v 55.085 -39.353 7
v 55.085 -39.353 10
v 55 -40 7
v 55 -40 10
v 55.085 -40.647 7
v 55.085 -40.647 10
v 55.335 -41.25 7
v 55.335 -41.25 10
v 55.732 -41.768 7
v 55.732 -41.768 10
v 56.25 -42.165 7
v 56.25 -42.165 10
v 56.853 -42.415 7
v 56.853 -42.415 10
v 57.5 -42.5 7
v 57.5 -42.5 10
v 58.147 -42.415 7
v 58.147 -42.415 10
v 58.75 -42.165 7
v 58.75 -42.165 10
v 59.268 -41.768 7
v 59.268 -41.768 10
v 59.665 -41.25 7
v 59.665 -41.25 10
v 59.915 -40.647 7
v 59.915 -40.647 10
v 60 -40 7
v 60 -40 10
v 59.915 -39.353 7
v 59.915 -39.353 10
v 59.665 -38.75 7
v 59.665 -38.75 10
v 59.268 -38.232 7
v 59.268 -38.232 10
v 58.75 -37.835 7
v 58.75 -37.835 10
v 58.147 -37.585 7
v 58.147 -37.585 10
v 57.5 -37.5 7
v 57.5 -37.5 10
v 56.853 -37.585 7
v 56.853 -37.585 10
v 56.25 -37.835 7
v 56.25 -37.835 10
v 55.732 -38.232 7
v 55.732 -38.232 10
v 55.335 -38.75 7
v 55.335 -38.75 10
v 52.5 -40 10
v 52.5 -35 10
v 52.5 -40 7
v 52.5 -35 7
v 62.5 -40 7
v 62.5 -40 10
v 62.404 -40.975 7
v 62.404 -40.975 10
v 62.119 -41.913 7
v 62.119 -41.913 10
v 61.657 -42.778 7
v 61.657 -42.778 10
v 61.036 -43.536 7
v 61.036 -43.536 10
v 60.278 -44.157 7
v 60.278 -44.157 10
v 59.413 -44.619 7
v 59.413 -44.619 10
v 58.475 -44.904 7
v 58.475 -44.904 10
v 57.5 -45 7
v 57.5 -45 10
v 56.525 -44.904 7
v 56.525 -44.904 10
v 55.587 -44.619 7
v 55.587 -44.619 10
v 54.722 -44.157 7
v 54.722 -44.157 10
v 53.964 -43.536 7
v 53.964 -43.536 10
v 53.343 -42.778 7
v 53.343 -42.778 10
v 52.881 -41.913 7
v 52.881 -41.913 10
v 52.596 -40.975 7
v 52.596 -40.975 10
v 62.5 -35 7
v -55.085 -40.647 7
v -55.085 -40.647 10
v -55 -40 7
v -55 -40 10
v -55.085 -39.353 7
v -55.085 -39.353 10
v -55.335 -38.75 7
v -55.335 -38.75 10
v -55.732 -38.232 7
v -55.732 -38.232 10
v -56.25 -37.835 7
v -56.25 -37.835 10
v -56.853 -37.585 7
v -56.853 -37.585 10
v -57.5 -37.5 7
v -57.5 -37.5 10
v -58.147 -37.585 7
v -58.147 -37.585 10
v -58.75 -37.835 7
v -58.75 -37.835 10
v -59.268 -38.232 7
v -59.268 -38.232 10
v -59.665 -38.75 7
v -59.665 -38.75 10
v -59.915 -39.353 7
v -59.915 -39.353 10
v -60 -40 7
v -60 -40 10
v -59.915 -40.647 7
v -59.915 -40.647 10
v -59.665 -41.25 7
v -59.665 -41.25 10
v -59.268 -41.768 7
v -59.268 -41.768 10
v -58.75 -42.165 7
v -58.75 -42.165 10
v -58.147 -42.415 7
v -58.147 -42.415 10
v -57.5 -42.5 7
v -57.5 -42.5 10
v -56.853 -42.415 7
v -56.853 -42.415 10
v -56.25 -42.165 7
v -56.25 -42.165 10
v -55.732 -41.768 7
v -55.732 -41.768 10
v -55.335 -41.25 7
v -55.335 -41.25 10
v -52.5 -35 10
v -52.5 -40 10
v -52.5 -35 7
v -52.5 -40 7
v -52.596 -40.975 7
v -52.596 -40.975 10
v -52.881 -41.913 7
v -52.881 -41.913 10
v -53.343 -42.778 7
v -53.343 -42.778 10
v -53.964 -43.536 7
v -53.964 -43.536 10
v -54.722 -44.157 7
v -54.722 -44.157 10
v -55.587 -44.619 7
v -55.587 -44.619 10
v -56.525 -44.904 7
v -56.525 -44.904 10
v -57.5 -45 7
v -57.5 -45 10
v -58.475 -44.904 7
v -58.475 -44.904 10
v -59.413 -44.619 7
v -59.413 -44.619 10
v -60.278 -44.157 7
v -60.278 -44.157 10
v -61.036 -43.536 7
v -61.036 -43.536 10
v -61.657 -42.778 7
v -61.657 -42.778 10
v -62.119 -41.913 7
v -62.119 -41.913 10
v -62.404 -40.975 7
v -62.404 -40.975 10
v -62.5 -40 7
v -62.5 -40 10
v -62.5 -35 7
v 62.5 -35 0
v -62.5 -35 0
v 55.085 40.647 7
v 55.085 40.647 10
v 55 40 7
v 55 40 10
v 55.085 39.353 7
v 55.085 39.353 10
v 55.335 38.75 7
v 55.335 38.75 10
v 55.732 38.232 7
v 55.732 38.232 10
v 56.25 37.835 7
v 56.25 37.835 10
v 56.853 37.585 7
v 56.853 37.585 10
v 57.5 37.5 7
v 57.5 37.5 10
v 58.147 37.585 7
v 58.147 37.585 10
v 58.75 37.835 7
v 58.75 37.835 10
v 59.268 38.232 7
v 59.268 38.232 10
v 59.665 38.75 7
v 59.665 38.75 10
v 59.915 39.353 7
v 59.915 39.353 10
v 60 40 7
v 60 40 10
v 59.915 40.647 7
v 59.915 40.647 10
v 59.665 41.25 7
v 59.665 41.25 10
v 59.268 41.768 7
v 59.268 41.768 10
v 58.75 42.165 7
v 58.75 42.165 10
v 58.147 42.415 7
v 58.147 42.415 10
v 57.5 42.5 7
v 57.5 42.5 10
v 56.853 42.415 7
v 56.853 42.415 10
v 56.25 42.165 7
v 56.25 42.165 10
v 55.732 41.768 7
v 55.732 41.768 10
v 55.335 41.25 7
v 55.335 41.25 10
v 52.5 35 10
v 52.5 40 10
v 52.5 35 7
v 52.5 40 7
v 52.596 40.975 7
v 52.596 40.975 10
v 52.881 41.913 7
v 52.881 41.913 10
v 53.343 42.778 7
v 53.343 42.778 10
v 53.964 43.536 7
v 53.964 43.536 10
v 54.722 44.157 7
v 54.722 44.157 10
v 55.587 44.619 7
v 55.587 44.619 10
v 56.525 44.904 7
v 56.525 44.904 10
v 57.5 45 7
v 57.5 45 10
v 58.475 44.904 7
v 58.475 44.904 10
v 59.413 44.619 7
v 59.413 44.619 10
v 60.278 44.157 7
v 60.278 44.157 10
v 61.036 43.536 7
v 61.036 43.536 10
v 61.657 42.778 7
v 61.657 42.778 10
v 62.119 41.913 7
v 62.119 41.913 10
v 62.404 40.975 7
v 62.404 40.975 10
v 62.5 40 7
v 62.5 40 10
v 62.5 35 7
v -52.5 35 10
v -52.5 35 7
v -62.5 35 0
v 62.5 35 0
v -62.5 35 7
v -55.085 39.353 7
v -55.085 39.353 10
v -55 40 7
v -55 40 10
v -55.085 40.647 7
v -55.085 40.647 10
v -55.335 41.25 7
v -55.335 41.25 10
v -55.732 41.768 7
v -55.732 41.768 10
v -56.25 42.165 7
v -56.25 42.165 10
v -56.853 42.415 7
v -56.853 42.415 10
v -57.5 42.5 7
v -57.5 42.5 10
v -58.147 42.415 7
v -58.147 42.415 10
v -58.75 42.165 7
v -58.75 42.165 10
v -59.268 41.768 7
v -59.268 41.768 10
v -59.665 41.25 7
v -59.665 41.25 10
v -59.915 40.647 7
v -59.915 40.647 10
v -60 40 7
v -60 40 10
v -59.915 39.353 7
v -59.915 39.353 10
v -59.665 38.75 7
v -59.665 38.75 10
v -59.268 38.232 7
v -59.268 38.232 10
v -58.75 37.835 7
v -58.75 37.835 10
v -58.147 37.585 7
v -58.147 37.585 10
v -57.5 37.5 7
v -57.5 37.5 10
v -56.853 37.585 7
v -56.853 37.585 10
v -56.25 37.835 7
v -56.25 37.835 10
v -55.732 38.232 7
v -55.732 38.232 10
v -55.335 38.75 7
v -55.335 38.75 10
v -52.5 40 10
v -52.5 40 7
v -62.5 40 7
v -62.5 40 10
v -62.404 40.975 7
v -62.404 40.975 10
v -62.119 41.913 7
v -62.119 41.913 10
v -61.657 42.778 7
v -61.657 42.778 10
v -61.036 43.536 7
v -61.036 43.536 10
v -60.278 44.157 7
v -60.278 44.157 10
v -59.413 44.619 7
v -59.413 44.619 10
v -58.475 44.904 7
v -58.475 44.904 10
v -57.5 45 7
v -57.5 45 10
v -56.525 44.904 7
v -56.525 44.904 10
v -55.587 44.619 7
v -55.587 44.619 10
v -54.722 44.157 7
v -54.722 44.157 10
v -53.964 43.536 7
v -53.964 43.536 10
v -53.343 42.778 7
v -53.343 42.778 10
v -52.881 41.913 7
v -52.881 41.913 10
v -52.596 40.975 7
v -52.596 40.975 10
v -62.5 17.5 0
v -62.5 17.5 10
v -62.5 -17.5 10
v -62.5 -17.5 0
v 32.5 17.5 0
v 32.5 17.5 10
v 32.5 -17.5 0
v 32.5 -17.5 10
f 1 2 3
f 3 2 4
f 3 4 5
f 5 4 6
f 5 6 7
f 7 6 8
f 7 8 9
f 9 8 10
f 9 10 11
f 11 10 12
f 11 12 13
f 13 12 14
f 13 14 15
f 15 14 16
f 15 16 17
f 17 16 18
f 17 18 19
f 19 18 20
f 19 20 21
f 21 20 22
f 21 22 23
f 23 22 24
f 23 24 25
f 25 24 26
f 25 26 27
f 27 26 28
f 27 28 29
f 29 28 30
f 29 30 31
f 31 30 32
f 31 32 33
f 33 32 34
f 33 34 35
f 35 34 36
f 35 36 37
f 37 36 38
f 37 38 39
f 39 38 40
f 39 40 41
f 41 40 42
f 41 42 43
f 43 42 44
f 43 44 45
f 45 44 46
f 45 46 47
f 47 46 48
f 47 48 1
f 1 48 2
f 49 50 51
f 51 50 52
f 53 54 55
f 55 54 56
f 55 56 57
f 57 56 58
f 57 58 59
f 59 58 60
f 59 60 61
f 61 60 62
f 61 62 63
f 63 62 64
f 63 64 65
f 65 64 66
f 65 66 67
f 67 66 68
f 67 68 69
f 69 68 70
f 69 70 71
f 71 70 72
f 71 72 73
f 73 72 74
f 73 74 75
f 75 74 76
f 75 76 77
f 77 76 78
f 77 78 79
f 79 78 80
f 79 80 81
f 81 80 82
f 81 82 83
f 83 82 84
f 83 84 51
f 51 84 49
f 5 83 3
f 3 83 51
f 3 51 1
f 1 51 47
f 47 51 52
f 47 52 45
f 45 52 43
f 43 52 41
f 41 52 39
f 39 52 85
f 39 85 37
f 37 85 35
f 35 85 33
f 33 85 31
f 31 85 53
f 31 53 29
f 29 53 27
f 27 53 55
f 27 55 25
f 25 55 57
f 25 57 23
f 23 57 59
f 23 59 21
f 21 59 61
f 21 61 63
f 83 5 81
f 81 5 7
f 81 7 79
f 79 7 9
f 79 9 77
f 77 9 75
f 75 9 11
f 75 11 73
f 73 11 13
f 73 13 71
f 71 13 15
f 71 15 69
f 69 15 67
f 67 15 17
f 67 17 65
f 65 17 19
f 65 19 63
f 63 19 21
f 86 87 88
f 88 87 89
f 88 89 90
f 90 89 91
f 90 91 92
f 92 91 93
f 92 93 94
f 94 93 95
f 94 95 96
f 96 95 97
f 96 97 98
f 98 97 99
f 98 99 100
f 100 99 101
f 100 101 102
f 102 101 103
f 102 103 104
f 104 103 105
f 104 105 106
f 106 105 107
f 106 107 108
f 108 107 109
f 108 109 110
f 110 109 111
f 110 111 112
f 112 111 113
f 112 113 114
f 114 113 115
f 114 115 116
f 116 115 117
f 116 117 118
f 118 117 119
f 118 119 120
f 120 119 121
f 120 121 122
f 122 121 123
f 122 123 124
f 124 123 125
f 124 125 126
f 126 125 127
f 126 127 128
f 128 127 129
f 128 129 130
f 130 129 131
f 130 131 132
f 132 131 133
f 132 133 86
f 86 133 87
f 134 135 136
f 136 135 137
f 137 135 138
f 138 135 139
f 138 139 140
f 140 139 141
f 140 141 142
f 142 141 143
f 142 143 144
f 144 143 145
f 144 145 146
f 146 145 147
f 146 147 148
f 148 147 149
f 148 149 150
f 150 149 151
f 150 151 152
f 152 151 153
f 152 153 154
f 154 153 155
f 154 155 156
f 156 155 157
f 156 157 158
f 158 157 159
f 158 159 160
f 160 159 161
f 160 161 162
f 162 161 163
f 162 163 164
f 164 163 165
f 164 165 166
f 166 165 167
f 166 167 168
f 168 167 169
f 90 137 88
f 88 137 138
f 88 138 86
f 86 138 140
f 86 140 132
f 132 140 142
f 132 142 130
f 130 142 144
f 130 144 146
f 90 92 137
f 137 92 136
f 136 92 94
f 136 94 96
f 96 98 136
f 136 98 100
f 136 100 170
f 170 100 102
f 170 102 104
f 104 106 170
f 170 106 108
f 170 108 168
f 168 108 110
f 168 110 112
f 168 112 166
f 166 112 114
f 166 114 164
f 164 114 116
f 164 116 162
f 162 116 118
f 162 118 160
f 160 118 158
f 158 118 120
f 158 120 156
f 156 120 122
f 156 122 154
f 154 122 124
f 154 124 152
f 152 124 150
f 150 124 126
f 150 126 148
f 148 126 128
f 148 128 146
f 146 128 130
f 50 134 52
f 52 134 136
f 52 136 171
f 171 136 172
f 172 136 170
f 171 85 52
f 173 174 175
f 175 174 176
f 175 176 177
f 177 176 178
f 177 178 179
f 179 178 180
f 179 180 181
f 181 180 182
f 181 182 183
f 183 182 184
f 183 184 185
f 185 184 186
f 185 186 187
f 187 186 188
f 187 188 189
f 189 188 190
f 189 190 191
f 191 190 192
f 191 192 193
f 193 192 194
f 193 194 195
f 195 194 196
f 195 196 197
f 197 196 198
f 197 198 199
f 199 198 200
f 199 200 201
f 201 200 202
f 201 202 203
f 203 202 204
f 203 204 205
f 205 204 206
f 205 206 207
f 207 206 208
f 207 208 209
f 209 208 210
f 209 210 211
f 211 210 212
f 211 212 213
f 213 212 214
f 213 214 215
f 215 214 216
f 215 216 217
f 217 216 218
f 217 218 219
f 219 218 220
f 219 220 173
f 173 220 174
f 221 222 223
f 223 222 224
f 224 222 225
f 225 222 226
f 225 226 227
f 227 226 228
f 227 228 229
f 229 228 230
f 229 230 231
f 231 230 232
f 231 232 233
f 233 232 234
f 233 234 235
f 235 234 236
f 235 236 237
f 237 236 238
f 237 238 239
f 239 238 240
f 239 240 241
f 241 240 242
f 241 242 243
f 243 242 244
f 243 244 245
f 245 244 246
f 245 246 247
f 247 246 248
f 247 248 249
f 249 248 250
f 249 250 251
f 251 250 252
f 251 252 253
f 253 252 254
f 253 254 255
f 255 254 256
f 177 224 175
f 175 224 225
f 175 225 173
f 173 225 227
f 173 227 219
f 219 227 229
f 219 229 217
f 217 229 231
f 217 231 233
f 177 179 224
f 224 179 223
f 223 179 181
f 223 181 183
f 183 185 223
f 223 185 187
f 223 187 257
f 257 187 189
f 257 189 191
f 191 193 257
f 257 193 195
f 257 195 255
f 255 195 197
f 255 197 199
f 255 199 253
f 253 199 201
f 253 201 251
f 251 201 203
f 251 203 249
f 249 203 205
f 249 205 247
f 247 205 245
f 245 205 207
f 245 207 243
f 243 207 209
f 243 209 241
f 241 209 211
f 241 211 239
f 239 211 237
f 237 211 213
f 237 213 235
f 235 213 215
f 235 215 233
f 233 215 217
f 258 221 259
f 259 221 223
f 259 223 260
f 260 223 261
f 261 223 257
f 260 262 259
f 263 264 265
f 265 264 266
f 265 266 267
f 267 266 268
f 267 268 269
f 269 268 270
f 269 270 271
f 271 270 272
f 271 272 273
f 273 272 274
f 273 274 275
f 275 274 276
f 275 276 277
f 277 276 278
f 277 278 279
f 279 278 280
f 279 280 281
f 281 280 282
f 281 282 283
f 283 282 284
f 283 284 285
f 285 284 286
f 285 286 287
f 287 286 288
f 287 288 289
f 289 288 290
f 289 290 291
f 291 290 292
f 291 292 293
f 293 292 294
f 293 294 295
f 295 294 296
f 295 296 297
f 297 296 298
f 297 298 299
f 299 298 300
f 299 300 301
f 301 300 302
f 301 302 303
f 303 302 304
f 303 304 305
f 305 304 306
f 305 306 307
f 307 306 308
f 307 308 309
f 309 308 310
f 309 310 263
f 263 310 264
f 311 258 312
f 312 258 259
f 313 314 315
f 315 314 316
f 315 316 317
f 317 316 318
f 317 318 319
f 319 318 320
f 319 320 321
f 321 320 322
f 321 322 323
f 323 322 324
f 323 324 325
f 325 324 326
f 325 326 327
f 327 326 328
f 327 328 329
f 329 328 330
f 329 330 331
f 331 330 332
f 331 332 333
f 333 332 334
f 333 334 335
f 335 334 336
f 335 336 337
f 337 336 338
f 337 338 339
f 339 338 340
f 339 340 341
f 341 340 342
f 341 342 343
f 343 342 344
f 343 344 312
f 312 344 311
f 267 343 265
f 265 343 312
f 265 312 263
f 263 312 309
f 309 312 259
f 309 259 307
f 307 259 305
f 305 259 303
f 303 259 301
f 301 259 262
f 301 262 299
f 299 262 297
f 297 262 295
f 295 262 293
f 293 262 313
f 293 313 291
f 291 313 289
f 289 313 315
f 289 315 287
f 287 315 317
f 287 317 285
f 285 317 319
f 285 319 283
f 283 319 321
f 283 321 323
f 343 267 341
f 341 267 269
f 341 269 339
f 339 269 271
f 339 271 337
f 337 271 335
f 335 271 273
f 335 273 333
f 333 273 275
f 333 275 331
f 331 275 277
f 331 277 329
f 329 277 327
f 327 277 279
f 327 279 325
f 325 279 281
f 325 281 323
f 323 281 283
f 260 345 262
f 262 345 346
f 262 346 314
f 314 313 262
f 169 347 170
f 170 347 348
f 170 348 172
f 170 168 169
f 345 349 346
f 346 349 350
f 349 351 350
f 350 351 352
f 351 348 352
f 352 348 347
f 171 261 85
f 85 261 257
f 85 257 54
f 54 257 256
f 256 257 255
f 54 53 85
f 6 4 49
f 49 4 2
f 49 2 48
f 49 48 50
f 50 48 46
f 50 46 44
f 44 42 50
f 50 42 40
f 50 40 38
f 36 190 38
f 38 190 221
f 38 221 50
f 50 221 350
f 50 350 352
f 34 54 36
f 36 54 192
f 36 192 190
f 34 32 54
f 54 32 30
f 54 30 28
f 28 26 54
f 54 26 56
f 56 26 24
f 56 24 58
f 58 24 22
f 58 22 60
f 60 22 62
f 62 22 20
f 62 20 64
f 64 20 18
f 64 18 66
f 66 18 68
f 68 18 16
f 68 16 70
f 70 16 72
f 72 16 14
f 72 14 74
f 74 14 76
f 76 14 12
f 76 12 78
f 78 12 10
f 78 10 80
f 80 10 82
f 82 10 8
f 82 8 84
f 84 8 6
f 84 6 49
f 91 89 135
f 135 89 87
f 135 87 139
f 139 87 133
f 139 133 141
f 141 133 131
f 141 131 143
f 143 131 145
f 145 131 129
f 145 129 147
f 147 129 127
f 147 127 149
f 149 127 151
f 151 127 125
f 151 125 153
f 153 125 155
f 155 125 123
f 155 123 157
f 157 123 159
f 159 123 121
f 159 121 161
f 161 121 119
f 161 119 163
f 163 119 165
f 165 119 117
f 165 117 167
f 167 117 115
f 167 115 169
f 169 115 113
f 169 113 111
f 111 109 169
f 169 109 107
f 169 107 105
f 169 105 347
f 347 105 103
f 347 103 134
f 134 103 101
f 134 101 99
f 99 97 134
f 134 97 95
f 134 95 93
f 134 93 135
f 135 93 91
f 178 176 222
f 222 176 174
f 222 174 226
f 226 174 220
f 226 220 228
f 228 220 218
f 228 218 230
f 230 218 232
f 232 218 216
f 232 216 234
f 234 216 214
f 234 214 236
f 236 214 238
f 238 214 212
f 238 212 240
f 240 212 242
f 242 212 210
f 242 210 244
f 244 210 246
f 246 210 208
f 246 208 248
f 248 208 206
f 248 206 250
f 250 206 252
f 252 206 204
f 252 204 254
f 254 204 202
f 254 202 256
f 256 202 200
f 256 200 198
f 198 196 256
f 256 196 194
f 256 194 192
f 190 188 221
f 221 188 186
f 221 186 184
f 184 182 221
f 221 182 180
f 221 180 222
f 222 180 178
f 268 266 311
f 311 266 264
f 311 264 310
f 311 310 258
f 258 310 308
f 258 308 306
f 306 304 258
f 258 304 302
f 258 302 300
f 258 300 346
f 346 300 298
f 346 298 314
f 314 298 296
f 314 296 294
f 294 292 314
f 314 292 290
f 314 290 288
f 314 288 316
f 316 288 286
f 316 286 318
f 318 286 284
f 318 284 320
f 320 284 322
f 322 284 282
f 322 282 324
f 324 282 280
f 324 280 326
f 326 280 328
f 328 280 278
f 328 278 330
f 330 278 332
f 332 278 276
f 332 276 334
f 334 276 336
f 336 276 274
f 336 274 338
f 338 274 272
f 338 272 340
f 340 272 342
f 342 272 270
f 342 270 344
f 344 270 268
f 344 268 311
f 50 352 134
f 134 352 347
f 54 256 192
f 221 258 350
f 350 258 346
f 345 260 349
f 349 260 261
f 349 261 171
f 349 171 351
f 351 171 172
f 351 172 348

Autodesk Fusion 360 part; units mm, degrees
sketch "Sketch1" plane through (0, 0, 0) normal (0, 0, 1) x (1, 0, 0)
  line L0 (62.5, -35) -> (-62.5, -35)
  line L1 (-62.5, -35) -> (-62.5, 35)
  line L2 (-62.5, 35) -> (62.5, 35)
  line L3 (62.5, 35) -> (62.5, -35)
  line L4 (62.5, -35) -> (-62.5, 35) construction
  line L5 (-62.5, -35) -> (62.5, 35) construction
  dimension "d1" = 125
  dimension "d2" = 70
extrude "Extrude1" add sketch "Sketch1" along normal blind 10
sketch "Sketch2" plane through (0, 0, 10) normal (0, 0, 1) x (-1, 0, 0)
  line L0 (-62.5, -35) -> (62.5, -35)
  line L1 (62.5, -35) -> (62.5, 35)
  line L2 (62.5, 35) -> (-62.5, 35)
  line L3 (-62.5, 35) -> (-62.5, -35)
sketch "Sketch3" plane through (0, 0, 0) normal (0, 0, -1) x (1, 0, 0)
  line L0 (-62.5, -35) -> (62.5, -35)
  line L1 (62.5, -35) -> (62.5, 35)
  line L2 (62.5, 35) -> (-62.5, 35)
  line L3 (-62.5, 35) -> (-62.5, -35)
  line L4 (-62.5, 0) -> (-62.5, 17.5)
  line L5 (-62.5, 0) -> (-62.5, -17.5)
  line L6 (-62.5, 17.5) -> (32.5, 17.5)
  line L7 (32.5, 17.5) -> (32.5, -17.5)
  line L8 (-62.5, -17.5) -> (32.5, -17.5)
  dimension "d5" = 17.5
  dimension "d6" = 17.5
  dimension "d7" = 95
  dimension "d8" = 35
extrude "Extrude2" cut sketch "Sketch3" against normal blind 8 contours L3 L4 L5 L6 L7 L8
extrude "Extrude3" cut 1 faces at (-30.8333, -5.8333, 8) along direction (0, 0, 1) blind 30
sketch "Sketch4" plane through (0, 0, 10) normal (0, 0, 1) x (-1, 0, 0)
  line L0 (62.5, -35) -> (52.5, -35)
  line L1 (52.5, -35) -> (52.5, -40)
  line L2 (62.5, -40) -> (62.5, -35)
  arc A0 (57.5, -45) -> (62.5, -40) centre (57.5, -40) ccw
  arc A1 (52.5, -40) -> (57.5, -45) centre (57.5, -40) ccw
  circle A2 centre (57.5, -40) radius 2.5
  point P0 (62.5, -45)
  dimension "d13" = 10
  dimension "d14" = 10
  dimension "d15" = 5
  dimension "d16" = 5
  dimension "d17" = 5
extrude "Extrude4" add sketch "Sketch4" against normal blind 3
mirror "Mirror1" about plane through (0, 0, 0) normal (1, 0, 0) of "Extrude4"
mirror "Mirror2" about plane through (0, 0, 0) normal (0, 1, 0) of "Extrude4", "Mirror1"
equation "d5 = ( 35 / 2 ) * 1 mm"
